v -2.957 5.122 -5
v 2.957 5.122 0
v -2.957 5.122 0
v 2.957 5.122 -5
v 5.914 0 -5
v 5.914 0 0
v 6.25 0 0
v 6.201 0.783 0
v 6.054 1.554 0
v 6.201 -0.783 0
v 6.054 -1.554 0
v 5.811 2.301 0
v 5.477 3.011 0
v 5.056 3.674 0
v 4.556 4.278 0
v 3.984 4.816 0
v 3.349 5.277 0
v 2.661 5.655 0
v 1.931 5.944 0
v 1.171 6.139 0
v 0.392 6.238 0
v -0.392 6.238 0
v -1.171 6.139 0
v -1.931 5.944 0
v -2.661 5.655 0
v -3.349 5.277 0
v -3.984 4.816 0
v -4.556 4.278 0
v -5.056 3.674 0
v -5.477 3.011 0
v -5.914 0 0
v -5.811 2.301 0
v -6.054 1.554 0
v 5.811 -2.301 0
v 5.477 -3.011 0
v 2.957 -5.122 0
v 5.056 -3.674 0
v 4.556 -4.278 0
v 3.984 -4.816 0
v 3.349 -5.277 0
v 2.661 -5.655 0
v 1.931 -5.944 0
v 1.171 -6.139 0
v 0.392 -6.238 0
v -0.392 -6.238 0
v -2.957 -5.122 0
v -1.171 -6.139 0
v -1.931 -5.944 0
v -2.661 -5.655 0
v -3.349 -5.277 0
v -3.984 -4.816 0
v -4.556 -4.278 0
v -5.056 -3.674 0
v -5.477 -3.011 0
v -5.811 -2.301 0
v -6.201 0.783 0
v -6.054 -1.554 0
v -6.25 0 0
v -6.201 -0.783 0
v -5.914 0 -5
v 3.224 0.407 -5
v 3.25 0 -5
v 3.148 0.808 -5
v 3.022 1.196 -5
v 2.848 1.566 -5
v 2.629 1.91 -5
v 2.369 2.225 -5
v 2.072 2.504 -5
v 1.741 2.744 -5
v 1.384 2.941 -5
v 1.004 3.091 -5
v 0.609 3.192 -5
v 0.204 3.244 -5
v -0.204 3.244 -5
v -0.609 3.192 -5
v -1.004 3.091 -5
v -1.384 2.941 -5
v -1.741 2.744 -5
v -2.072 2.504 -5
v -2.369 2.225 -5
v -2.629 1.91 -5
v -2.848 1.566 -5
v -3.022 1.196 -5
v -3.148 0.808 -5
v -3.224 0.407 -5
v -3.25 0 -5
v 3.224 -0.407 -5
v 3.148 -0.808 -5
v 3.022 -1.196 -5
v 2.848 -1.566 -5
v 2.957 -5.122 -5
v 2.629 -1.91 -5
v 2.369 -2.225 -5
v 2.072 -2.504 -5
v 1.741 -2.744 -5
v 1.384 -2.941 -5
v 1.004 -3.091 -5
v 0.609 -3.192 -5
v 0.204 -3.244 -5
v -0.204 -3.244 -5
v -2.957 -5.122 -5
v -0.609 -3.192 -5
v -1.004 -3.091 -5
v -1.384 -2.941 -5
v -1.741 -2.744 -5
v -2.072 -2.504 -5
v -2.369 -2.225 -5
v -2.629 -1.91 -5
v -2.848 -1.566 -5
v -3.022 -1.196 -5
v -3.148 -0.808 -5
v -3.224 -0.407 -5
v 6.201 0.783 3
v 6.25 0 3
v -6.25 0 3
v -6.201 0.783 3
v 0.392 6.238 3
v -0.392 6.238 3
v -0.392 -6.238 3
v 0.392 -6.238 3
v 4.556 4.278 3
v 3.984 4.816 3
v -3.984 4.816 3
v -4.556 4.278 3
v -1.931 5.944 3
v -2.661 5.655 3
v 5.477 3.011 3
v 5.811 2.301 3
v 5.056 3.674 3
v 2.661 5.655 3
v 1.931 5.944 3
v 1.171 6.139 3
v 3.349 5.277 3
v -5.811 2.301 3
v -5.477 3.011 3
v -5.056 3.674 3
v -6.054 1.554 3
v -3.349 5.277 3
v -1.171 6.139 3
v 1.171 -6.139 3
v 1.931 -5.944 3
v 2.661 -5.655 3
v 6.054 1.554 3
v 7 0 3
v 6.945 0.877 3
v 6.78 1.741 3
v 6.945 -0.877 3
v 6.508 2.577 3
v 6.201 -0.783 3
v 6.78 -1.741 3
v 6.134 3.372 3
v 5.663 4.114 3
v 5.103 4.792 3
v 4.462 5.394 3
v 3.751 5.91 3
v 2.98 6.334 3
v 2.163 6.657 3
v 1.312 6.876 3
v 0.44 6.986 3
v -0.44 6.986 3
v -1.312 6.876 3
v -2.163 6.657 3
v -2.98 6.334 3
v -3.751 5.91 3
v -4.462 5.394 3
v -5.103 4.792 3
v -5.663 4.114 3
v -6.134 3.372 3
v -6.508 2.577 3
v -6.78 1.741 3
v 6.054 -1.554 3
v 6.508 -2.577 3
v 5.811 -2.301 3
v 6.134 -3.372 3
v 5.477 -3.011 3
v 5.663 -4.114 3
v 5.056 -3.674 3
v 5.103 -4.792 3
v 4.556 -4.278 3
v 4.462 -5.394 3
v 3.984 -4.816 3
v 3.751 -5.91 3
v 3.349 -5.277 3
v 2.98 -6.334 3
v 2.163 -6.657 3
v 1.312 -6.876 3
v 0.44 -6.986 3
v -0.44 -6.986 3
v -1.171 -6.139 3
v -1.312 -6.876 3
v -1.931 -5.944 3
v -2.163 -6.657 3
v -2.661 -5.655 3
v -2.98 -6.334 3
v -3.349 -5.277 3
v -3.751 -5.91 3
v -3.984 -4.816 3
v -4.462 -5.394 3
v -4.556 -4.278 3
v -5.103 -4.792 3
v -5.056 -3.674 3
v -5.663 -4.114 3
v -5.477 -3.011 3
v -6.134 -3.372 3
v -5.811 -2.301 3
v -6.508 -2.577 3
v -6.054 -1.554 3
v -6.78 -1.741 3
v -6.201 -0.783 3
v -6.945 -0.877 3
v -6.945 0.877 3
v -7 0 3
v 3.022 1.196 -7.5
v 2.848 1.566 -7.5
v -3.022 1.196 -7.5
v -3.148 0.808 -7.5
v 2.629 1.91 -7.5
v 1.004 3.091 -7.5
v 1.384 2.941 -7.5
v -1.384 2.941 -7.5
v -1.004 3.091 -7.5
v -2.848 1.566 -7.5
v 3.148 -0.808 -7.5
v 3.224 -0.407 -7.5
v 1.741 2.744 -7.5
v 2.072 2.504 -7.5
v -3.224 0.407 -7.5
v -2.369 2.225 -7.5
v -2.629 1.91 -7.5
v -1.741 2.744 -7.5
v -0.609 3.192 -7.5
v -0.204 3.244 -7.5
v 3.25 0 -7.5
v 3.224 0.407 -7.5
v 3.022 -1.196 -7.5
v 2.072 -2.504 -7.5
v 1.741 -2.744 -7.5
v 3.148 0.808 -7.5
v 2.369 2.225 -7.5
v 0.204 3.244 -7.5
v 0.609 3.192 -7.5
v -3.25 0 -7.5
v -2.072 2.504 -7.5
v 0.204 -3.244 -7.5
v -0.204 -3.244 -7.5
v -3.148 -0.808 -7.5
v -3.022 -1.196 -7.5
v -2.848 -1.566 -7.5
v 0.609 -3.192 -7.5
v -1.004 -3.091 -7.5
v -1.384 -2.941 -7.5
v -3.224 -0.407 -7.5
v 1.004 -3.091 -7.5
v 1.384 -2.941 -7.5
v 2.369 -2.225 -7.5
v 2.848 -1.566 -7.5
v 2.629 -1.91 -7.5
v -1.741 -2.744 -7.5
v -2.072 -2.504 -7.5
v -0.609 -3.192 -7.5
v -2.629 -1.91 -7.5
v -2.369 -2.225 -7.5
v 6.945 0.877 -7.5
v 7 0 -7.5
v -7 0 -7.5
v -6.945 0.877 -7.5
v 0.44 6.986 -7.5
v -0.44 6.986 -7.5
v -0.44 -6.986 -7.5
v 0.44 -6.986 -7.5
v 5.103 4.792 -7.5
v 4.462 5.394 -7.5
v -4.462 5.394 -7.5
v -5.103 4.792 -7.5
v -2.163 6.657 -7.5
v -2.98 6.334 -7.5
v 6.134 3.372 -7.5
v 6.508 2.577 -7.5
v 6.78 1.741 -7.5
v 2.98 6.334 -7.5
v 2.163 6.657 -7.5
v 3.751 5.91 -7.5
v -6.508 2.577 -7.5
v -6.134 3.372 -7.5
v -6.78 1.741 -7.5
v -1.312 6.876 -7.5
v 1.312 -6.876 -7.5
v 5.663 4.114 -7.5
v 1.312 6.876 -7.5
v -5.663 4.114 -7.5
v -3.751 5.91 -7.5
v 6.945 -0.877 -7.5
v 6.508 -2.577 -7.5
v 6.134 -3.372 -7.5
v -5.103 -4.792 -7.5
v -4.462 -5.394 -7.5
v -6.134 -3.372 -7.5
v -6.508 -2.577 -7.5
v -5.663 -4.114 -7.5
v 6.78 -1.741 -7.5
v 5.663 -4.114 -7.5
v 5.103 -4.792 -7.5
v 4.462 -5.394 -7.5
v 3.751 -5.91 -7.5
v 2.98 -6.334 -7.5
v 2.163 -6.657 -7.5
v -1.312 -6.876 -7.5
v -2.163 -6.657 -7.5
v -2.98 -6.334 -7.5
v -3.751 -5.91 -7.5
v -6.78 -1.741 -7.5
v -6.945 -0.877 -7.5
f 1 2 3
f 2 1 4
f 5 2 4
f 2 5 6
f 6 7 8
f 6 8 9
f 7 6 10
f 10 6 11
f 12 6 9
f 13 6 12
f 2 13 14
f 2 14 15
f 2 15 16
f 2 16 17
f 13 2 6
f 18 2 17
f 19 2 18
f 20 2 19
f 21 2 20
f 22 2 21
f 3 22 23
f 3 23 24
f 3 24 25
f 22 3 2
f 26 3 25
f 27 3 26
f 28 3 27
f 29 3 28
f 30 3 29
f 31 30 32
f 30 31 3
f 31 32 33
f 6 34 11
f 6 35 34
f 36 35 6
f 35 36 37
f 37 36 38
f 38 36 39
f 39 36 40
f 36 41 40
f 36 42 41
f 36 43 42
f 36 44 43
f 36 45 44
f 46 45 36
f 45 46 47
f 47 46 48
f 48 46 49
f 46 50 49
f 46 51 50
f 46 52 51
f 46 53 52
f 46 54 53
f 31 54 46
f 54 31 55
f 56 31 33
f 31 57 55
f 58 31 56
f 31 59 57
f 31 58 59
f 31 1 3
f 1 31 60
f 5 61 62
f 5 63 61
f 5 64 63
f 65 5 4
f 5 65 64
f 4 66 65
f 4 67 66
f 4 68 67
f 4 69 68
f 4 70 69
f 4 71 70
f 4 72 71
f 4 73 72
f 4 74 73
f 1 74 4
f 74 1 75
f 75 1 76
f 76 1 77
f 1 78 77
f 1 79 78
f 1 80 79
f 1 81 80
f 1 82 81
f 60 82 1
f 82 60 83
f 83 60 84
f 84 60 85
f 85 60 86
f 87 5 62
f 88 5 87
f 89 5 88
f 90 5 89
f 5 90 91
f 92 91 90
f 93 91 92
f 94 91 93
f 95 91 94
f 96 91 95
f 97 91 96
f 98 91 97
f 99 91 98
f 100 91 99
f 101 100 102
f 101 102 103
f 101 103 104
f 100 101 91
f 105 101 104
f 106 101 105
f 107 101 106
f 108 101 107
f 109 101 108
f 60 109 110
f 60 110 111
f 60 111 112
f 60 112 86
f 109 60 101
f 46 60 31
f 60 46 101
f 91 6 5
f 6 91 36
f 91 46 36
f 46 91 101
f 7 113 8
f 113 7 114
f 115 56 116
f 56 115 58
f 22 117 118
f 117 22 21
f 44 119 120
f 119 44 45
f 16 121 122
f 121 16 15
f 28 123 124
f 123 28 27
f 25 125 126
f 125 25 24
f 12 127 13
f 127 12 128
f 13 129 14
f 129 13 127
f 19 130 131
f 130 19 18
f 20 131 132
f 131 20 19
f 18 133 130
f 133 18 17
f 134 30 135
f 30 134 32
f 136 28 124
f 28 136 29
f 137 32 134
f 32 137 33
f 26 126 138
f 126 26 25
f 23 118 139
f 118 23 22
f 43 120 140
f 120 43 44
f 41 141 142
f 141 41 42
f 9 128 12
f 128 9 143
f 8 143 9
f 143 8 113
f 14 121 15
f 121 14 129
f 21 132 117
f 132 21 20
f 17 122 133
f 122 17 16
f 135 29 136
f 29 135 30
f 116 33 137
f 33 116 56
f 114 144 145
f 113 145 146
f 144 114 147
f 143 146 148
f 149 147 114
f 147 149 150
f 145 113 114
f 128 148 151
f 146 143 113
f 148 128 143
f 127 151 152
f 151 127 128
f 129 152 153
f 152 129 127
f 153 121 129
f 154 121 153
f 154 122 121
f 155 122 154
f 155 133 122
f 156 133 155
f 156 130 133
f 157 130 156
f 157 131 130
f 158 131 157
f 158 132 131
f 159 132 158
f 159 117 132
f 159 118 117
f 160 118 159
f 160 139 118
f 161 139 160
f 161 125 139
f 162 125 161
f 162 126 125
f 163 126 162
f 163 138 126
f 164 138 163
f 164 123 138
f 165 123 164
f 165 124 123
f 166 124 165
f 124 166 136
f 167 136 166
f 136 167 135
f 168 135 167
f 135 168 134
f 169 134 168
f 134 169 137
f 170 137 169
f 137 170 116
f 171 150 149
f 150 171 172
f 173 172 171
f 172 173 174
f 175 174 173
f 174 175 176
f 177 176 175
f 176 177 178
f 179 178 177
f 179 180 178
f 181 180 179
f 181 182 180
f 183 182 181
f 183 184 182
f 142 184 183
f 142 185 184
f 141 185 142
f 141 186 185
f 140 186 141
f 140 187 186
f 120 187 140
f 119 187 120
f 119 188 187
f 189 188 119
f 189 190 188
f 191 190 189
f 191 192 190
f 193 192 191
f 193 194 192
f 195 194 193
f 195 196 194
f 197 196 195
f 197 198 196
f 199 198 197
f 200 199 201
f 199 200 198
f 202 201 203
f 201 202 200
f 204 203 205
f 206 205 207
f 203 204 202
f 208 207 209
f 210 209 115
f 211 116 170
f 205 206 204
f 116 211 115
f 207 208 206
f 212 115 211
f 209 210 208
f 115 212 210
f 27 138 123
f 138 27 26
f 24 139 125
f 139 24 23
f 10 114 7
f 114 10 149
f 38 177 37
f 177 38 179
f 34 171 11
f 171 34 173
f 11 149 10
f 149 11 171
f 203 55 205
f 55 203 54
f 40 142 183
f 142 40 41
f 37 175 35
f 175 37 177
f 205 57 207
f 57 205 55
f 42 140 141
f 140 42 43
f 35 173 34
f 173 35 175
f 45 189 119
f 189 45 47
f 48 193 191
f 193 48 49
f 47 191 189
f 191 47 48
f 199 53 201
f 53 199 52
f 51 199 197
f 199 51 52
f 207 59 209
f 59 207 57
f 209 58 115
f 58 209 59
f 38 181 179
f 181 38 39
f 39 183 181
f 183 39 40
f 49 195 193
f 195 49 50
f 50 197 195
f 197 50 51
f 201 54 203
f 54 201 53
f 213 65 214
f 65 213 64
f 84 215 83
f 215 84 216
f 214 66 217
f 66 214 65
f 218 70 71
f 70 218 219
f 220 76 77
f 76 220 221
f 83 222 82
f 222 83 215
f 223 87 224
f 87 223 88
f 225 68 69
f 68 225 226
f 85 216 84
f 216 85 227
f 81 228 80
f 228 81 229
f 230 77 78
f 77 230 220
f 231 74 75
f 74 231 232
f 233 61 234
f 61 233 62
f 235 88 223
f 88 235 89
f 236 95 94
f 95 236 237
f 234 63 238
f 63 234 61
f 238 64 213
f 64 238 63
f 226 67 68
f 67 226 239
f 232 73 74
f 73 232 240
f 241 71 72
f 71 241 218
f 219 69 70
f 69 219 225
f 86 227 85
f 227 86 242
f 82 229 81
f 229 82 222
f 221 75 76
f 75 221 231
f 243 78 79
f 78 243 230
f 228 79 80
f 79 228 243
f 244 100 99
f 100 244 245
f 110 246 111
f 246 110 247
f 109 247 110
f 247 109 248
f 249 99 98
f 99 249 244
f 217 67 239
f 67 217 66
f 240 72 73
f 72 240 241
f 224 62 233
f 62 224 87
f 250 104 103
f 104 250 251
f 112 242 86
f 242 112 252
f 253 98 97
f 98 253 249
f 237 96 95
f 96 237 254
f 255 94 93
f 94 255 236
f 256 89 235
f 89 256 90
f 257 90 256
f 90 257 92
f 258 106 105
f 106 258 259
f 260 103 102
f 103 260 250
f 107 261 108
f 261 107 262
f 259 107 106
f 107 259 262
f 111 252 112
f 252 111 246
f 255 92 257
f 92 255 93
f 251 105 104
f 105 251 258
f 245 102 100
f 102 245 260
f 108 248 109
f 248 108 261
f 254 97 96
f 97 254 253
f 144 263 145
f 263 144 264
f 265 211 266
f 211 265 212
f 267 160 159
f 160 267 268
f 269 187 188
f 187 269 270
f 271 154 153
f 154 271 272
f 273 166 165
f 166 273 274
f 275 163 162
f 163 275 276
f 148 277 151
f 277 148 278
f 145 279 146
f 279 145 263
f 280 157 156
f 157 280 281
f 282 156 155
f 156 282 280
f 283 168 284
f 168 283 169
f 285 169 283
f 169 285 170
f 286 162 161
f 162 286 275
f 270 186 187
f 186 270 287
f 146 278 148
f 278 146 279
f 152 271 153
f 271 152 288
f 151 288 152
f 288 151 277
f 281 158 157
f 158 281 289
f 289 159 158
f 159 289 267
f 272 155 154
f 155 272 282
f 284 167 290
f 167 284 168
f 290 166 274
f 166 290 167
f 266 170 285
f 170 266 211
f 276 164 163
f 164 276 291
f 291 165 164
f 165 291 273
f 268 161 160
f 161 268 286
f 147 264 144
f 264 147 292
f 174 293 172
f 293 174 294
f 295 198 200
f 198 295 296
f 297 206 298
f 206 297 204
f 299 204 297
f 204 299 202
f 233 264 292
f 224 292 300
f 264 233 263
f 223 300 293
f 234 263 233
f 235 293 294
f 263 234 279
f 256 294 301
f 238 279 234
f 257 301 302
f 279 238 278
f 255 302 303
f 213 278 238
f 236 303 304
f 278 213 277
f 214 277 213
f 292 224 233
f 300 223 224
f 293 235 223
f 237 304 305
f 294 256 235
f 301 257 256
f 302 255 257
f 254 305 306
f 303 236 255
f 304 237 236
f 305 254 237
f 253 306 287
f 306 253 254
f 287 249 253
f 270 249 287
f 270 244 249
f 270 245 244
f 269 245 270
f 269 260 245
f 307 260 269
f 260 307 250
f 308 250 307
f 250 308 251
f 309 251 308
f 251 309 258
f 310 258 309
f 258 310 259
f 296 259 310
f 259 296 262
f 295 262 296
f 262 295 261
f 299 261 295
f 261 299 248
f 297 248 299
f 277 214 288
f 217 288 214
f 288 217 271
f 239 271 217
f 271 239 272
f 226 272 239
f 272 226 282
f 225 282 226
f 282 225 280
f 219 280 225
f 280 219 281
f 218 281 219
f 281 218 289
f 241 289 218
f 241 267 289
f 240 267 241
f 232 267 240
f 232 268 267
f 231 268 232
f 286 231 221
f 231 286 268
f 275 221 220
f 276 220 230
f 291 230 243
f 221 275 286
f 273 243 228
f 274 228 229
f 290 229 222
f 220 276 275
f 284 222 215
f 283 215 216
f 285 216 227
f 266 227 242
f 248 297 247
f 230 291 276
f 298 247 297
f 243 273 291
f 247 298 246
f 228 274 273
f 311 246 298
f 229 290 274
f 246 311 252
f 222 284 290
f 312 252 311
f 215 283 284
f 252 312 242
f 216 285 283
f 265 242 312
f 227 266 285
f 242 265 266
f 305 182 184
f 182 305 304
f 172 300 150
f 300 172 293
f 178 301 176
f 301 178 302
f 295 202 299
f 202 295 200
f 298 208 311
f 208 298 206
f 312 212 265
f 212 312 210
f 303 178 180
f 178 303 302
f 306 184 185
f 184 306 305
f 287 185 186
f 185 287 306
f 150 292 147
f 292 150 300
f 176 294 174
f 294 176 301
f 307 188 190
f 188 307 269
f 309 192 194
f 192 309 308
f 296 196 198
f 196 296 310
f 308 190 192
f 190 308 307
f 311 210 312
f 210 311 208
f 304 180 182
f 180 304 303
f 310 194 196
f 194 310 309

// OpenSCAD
$fn = 50;

difference() {
	union() {
		translate(v = [0, 0, -7.5]) {
			cylinder(h = 10.5, r = 7.0);
		}
	}
	union() {
		translate(v = [0, 0, 0]) {
			rotate(a = [0, 0, 0]) {
				difference() {
					union() {
						translate(v = [0, 0, -5]) {
							linear_extrude(height = 5) {
								polygon(points = [[5.914249999999999, 0.0], [2.957125, 5.1218907443321156], [-2.9571249999999982, 5.1218907443321156], [-5.914249999999999, 7.242867331857232e-16], [-2.9571250000000022, -5.121890744332115], [2.9571249999999956, -5.121890744332118]]);
							}
						}
					}
					union();
				}
			}
		}
		#cylinder(h = 3, r = 6.25);
		#translate(v = [0, 0, -100.0]) {
			cylinder(h = 200, r = 3.25);
		}
	}
}
